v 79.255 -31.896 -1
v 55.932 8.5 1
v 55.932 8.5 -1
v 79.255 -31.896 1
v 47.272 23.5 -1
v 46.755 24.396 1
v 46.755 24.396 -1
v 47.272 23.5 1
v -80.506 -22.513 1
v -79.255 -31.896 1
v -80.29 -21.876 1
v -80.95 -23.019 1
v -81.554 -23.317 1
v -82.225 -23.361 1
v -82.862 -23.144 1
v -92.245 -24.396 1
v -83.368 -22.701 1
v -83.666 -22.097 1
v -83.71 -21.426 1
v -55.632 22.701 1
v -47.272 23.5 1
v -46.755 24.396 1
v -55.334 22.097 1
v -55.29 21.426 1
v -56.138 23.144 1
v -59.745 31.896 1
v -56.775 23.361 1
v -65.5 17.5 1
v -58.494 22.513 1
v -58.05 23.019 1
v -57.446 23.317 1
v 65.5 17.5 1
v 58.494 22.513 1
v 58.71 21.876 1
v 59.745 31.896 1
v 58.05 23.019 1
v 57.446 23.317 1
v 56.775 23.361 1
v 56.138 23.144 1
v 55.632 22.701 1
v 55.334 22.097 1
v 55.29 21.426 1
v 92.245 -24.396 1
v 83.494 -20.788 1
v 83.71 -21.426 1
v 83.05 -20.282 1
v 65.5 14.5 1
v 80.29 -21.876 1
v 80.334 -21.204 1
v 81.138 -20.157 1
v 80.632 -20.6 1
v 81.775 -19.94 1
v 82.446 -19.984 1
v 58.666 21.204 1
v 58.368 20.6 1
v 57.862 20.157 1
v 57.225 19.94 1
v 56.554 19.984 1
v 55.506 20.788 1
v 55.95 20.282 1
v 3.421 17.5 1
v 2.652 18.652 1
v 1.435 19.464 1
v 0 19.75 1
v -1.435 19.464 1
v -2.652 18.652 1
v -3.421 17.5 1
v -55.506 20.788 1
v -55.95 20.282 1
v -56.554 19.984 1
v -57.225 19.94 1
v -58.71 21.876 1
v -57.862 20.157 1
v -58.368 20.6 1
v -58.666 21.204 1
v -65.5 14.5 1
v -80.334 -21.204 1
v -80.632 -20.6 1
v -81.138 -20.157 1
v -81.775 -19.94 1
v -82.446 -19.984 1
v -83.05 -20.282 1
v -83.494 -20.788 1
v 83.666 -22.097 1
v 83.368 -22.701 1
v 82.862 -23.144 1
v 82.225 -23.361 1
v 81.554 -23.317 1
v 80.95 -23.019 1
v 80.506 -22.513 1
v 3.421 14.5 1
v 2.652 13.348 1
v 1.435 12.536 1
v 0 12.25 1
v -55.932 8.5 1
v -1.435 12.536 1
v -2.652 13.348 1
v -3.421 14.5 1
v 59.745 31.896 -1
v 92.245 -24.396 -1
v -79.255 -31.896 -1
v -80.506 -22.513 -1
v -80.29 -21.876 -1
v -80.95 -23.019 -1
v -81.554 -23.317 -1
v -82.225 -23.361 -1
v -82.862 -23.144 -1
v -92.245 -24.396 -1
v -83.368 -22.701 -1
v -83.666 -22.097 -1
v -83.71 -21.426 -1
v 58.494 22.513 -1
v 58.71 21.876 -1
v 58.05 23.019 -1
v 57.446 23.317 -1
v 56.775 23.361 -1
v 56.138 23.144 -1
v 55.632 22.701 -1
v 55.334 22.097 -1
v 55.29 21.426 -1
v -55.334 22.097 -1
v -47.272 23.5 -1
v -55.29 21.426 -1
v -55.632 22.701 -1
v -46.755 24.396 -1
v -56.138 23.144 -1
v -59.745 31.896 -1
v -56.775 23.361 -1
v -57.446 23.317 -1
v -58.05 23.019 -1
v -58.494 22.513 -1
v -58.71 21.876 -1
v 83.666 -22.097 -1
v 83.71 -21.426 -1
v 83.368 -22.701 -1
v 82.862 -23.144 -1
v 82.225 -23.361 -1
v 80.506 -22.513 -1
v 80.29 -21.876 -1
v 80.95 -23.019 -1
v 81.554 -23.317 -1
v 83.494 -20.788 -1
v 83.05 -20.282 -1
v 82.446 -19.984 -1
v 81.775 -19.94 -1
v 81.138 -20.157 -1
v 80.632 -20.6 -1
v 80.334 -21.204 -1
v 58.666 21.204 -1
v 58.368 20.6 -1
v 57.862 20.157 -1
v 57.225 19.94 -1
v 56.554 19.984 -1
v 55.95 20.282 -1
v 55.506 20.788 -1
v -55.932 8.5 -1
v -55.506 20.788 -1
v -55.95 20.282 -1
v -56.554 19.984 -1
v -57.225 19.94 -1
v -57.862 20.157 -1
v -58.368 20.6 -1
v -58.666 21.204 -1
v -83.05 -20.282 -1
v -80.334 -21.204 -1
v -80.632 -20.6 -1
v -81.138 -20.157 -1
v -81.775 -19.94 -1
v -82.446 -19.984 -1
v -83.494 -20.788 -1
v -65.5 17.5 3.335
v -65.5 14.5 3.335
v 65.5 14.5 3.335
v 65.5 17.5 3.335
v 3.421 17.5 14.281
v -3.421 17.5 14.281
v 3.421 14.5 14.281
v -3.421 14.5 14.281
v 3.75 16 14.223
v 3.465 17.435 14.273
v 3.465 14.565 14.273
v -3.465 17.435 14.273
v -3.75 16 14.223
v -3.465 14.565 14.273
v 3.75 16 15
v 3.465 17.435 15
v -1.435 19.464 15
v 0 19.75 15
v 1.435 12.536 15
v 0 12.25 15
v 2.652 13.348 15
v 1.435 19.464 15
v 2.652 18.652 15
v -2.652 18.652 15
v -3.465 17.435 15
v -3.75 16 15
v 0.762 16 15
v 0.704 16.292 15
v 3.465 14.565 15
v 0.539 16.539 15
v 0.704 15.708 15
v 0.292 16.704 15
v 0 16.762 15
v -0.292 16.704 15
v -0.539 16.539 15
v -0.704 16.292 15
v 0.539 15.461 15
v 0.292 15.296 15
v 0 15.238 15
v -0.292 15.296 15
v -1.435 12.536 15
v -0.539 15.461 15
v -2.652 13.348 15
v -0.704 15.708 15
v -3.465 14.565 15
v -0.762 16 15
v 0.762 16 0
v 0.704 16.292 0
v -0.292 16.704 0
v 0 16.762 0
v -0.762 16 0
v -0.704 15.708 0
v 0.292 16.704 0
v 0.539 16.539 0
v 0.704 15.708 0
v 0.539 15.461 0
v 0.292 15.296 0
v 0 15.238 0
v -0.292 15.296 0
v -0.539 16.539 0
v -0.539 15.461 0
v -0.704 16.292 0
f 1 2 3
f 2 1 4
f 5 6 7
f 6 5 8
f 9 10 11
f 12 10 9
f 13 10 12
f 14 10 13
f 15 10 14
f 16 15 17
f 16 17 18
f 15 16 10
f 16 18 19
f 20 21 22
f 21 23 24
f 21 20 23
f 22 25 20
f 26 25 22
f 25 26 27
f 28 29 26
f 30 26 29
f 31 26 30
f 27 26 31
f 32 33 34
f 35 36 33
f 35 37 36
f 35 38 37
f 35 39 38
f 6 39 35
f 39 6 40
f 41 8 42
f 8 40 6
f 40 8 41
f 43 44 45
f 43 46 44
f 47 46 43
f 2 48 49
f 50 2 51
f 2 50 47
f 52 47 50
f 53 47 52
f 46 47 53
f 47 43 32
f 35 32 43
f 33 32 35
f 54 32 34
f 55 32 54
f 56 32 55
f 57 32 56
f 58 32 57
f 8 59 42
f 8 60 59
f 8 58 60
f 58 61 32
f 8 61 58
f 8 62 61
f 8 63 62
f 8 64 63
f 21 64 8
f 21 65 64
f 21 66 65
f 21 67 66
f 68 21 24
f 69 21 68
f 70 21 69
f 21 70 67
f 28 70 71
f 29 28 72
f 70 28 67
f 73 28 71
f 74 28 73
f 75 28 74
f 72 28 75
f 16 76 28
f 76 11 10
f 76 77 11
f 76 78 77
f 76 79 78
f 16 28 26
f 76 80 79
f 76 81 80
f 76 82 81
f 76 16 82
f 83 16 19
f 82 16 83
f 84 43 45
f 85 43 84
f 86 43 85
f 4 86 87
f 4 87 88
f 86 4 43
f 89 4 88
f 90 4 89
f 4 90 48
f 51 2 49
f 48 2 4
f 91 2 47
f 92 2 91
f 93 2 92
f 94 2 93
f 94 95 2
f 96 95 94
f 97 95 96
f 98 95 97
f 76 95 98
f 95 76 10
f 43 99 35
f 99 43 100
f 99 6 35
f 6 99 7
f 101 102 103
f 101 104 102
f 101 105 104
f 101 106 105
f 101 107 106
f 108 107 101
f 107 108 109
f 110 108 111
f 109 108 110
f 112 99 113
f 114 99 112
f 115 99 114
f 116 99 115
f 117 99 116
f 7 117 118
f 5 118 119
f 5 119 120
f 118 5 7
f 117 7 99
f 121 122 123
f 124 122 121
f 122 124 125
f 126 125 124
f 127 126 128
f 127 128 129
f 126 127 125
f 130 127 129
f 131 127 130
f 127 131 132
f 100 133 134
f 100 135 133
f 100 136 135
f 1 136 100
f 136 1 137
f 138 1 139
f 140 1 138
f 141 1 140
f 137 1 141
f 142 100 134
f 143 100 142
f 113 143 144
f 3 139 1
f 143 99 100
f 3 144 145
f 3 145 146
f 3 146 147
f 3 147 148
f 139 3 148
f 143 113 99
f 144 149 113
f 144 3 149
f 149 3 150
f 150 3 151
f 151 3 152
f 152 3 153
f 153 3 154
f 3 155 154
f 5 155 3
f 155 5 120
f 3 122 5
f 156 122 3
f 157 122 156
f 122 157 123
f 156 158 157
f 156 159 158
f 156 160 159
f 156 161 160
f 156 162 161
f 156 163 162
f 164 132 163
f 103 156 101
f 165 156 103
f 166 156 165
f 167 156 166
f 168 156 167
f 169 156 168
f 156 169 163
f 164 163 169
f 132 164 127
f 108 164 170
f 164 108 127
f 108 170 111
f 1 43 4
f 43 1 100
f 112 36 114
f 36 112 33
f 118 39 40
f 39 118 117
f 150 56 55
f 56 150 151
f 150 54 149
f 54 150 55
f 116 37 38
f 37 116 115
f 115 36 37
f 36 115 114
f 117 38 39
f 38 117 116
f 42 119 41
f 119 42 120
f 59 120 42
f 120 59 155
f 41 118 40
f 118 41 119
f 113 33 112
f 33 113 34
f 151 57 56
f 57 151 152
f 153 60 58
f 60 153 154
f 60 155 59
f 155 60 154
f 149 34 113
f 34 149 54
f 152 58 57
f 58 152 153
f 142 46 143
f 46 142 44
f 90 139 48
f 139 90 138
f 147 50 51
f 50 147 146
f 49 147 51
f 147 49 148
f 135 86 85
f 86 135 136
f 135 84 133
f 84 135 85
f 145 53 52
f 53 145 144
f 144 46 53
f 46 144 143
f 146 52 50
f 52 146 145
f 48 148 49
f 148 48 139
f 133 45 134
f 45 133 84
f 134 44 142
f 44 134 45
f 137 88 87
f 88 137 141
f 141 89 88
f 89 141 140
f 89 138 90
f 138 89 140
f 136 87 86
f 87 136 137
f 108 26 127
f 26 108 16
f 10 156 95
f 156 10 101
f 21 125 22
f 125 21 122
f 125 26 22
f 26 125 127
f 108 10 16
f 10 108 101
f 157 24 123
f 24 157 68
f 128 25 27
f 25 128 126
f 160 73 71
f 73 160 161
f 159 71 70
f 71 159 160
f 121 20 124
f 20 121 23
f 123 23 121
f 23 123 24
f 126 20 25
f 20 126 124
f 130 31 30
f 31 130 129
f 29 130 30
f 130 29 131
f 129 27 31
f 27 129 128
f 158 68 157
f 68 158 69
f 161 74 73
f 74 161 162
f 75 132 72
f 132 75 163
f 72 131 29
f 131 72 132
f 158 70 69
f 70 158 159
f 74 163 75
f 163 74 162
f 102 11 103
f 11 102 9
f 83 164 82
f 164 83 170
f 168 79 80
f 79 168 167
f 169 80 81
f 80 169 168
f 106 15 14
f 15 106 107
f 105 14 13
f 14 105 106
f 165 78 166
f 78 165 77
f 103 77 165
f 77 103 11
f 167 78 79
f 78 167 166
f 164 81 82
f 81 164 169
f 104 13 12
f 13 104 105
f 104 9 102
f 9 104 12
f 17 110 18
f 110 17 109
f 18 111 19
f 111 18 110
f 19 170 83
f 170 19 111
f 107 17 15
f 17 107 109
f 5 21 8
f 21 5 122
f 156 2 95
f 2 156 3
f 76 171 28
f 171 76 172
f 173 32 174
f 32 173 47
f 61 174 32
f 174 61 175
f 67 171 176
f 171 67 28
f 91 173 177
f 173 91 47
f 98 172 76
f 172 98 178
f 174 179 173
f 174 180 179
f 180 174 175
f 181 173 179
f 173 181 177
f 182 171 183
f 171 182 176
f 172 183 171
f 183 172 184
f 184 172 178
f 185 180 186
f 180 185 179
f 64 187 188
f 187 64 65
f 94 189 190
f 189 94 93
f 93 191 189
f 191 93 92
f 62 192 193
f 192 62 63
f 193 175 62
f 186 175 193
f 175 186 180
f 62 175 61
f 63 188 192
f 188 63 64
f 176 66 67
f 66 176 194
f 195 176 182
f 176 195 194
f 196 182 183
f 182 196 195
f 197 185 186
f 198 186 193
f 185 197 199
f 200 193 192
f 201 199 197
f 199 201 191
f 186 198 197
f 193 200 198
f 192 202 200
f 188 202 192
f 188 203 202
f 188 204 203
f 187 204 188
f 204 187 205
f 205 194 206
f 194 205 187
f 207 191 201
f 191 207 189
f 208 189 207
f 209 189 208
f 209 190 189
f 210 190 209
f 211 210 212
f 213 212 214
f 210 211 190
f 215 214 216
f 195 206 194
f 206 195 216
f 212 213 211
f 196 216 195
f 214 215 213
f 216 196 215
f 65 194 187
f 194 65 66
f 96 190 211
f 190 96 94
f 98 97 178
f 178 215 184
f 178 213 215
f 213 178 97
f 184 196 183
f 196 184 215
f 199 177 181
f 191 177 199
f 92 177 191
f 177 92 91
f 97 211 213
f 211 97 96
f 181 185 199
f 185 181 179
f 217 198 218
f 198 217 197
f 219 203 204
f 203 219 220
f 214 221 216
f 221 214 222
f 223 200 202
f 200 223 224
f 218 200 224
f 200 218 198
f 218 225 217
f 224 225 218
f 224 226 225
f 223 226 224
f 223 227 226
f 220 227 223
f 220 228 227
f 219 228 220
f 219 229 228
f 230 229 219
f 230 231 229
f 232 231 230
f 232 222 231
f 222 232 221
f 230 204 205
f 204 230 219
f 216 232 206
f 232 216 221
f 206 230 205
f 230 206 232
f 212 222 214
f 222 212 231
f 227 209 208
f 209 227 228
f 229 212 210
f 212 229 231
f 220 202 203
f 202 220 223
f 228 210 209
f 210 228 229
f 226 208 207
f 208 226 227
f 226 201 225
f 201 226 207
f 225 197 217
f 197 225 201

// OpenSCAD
//118
mount_length=50.0;    // the length of the mount sides
mount_width=15.0;     // the width of the mount sides
mount_thickness=2.0;  // the thickness of the mount sides
span_width=139;
span_y_offset=16;   // 22
riser_height=15;
riser_thickness=3;
$fn=16;

// Increase this if your slicer or printer make holes too tight.
extra_radius = 0.1;

// Major diameter of metric 3mm thread.
m3_major = 2.85;
m3_radius = m3_major/2 + extra_radius;
m3_wide_radius = m3_major/2 + extra_radius + 0.2;

difference() {
    union() {
        // mounting bars
        translate([span_width/2,0,0]) rotate([0,0,30]) bar();
        translate([-span_width/2,0,0]) rotate([0,0,-30]) bar();
        // span between bars
        translate([0,span_y_offset,0]) union() {
            translate([0,mount_width/4,0])
                cube([span_width-span_y_offset*2,mount_width/2,mount_thickness], center=true);
            translate([0,-mount_width/4,0])
                cube([span_width-span_y_offset,mount_width/2,mount_thickness], center=true);
        }
        translate([0,span_y_offset,0])
            cylinder(r=mount_width/4, h=riser_height);
        difference() {
            translate([0,span_y_offset,riser_height/2])
                cube([span_width-span_y_offset/2,riser_thickness,riser_height], center=true);
            translate([0,span_y_offset,riser_height+riser_height/2]) rotate([0,10,0]) 
                cube([span_width*2-span_y_offset,riser_thickness,riser_height], center=true);
            translate([0,span_y_offset,riser_height+riser_height/2]) rotate([0,-10,0]) 
                cube([span_width*2-span_y_offset,riser_thickness,riser_height], center=true);
        }
    }
    translate([0,span_y_offset,0])
        cylinder(r=m3_radius/2, h=riser_height);
}

module bar() {
    difference() {
        cube([mount_width,mount_length+mount_width,mount_thickness], center=true);
        translate([0,mount_length/2,0]) cylinder(r=m3_wide_radius, h=mount_thickness, center=true);
        translate([0,-mount_length/2,0]) cylinder(r=m3_wide_radius, h=mount_thickness, center=true);
    }
}
